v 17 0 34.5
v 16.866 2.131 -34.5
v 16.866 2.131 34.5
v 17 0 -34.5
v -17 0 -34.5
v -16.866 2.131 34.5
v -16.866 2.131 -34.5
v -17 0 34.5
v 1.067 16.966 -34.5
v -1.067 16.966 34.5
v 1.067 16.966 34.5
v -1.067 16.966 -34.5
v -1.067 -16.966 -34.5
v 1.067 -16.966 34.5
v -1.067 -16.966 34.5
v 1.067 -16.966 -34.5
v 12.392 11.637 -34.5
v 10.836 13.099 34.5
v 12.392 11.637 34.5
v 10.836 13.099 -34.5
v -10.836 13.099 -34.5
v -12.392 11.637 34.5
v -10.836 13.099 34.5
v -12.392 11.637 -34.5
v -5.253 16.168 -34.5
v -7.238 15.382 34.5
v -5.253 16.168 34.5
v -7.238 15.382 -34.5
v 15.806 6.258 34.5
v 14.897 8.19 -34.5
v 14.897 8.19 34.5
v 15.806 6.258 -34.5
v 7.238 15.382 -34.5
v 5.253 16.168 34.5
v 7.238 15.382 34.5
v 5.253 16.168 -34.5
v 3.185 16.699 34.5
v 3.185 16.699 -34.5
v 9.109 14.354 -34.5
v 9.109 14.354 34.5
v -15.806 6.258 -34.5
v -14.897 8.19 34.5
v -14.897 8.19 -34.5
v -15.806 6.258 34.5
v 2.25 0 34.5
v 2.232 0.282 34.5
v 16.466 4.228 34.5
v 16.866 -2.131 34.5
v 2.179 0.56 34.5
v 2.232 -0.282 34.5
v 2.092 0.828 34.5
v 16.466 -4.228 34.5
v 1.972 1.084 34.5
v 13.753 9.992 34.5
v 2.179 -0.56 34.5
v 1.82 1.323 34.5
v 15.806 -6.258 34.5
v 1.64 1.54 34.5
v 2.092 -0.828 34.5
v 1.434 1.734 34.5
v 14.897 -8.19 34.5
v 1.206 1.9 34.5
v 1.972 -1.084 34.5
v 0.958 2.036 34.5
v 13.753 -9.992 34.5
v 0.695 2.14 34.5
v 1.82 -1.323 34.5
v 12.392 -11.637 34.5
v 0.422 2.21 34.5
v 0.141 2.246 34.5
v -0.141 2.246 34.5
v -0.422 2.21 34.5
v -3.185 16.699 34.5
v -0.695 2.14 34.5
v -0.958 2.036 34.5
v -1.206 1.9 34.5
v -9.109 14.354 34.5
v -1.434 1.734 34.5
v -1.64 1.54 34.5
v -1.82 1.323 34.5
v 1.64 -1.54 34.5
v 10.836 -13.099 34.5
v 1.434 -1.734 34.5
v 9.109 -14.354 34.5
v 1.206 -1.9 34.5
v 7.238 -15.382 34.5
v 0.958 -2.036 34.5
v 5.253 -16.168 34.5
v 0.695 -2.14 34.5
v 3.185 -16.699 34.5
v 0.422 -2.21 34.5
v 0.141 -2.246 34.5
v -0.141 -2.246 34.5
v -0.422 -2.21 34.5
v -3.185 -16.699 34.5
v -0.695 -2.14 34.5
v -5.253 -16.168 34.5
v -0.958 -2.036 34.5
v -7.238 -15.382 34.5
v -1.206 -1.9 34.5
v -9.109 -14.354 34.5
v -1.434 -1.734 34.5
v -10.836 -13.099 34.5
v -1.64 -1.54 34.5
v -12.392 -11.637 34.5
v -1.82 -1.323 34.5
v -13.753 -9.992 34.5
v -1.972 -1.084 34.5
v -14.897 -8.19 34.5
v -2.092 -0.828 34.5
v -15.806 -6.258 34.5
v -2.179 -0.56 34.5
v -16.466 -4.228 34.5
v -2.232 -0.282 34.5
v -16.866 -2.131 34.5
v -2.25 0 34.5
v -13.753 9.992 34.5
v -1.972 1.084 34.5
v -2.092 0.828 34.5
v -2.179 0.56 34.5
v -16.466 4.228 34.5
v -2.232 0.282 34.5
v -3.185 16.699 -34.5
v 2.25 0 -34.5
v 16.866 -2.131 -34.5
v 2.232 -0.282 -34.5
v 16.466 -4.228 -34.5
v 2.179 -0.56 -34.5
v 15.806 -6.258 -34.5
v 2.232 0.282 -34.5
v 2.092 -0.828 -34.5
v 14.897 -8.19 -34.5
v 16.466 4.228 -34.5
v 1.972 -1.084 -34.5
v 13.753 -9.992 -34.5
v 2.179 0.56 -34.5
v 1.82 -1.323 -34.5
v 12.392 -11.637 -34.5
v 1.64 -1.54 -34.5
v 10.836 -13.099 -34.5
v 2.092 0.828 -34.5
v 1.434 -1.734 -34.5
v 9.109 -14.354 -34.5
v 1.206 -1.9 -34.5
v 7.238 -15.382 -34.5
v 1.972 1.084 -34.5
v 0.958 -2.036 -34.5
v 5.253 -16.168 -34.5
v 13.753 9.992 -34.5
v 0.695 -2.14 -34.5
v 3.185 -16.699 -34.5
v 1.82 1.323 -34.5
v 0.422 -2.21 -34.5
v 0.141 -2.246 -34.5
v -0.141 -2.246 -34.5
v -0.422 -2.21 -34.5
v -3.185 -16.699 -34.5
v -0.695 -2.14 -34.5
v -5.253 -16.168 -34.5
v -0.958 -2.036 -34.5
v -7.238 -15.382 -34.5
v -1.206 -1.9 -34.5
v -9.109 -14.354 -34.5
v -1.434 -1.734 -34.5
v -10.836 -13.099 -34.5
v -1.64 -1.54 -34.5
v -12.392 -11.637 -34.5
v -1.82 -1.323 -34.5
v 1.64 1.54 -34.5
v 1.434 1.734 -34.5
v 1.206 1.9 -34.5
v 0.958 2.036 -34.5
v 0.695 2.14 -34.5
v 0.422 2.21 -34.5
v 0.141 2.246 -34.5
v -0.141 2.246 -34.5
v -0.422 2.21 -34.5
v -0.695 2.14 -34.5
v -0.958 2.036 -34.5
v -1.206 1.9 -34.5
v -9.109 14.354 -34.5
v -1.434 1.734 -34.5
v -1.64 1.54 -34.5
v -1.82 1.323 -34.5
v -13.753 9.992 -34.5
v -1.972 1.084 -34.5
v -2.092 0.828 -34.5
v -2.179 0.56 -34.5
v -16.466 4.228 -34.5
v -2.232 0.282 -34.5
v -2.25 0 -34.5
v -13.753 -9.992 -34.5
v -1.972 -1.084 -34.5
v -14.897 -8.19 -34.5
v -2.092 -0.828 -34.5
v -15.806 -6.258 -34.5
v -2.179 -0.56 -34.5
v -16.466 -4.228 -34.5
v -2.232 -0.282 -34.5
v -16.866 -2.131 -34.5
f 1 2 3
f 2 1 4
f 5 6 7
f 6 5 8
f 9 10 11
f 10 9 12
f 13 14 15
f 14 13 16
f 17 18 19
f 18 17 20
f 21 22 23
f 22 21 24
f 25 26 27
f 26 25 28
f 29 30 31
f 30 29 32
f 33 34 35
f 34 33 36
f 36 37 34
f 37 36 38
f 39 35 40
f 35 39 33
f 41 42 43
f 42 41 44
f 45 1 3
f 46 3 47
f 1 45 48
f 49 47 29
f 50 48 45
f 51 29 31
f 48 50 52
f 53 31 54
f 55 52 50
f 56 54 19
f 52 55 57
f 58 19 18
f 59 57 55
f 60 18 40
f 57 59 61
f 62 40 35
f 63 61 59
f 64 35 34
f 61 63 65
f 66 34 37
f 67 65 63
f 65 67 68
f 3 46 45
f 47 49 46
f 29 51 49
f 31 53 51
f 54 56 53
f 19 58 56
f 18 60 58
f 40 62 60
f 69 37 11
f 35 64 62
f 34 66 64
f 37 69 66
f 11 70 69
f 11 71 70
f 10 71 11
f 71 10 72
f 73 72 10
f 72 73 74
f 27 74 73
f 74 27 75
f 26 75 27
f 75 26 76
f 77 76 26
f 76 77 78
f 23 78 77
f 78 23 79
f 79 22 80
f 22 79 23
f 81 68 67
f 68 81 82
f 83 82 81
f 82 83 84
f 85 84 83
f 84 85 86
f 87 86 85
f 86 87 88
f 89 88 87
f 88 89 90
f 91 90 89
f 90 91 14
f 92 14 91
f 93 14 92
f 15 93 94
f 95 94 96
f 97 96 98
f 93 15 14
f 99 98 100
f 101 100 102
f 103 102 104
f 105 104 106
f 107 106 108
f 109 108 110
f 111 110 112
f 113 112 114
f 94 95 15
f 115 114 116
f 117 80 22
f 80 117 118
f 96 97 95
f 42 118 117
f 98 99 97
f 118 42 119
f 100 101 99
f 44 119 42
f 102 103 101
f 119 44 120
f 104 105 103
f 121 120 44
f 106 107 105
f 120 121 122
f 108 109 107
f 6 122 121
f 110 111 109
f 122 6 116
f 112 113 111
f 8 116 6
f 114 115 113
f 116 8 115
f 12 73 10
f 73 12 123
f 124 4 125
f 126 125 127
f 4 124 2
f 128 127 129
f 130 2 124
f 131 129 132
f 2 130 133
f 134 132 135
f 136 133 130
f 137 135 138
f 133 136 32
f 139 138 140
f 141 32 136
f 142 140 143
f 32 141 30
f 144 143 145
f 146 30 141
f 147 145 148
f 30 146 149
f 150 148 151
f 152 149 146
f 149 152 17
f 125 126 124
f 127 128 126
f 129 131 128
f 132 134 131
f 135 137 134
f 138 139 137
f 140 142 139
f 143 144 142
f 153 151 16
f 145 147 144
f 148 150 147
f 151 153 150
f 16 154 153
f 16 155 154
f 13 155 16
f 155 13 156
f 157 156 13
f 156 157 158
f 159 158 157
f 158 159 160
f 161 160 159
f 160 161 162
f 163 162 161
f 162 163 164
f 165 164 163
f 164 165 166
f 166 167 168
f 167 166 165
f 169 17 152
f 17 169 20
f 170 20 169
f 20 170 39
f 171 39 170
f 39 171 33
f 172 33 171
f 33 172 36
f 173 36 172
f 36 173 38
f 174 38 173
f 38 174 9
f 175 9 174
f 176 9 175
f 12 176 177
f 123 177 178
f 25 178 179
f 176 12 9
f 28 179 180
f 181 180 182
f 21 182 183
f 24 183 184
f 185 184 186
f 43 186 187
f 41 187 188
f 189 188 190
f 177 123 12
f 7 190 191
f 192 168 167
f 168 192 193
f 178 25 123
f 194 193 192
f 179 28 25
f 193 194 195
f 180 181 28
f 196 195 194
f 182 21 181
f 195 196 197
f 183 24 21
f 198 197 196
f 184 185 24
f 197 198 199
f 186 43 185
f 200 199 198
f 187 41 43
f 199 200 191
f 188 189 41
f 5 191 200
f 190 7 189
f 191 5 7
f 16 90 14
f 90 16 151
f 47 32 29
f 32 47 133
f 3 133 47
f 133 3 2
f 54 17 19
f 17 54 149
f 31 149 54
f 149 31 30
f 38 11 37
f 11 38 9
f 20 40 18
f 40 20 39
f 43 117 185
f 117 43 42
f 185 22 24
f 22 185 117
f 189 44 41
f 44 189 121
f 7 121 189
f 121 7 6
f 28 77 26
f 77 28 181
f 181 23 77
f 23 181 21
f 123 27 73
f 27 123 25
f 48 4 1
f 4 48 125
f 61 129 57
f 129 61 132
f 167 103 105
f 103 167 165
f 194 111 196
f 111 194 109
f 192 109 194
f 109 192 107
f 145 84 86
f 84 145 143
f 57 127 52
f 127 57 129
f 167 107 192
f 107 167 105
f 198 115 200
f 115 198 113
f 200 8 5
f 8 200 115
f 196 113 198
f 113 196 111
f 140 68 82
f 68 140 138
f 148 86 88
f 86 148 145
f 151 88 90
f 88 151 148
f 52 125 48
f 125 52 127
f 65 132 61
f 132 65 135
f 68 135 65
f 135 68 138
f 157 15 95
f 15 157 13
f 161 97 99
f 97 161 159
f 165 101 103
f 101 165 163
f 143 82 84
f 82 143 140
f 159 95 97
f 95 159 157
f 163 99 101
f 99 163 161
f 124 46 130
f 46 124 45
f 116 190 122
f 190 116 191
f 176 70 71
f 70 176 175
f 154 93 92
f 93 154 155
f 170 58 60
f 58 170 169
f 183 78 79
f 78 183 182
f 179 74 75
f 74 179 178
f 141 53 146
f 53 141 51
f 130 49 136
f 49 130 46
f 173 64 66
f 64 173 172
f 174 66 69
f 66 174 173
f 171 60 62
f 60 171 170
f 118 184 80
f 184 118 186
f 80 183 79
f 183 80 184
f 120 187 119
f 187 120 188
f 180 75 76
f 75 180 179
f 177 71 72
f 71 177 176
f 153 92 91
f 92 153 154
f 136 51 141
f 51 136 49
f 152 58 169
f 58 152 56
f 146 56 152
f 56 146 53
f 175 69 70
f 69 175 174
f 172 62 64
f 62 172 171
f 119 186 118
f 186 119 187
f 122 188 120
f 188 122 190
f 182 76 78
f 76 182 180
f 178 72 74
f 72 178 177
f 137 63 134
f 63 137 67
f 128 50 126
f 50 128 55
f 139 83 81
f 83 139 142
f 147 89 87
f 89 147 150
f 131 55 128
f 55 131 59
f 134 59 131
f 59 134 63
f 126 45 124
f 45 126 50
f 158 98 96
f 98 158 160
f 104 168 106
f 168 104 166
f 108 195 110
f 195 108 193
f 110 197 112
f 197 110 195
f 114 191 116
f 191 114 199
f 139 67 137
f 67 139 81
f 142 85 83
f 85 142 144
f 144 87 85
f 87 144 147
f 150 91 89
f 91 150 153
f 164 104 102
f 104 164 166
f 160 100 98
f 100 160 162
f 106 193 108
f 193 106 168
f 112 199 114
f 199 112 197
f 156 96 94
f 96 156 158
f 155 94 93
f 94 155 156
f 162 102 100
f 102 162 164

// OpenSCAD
$fn = 50;


difference() {
	union() {
		translate(v = [0, 0, -34.5000000000]) {
			cylinder(h = 69, r = 17.0000000000);
		}
	}
	union() {
		translate(v = [0, 0, -100.0000000000]) {
			cylinder(h = 200, r = 2.2500000000);
		}
	}
}
